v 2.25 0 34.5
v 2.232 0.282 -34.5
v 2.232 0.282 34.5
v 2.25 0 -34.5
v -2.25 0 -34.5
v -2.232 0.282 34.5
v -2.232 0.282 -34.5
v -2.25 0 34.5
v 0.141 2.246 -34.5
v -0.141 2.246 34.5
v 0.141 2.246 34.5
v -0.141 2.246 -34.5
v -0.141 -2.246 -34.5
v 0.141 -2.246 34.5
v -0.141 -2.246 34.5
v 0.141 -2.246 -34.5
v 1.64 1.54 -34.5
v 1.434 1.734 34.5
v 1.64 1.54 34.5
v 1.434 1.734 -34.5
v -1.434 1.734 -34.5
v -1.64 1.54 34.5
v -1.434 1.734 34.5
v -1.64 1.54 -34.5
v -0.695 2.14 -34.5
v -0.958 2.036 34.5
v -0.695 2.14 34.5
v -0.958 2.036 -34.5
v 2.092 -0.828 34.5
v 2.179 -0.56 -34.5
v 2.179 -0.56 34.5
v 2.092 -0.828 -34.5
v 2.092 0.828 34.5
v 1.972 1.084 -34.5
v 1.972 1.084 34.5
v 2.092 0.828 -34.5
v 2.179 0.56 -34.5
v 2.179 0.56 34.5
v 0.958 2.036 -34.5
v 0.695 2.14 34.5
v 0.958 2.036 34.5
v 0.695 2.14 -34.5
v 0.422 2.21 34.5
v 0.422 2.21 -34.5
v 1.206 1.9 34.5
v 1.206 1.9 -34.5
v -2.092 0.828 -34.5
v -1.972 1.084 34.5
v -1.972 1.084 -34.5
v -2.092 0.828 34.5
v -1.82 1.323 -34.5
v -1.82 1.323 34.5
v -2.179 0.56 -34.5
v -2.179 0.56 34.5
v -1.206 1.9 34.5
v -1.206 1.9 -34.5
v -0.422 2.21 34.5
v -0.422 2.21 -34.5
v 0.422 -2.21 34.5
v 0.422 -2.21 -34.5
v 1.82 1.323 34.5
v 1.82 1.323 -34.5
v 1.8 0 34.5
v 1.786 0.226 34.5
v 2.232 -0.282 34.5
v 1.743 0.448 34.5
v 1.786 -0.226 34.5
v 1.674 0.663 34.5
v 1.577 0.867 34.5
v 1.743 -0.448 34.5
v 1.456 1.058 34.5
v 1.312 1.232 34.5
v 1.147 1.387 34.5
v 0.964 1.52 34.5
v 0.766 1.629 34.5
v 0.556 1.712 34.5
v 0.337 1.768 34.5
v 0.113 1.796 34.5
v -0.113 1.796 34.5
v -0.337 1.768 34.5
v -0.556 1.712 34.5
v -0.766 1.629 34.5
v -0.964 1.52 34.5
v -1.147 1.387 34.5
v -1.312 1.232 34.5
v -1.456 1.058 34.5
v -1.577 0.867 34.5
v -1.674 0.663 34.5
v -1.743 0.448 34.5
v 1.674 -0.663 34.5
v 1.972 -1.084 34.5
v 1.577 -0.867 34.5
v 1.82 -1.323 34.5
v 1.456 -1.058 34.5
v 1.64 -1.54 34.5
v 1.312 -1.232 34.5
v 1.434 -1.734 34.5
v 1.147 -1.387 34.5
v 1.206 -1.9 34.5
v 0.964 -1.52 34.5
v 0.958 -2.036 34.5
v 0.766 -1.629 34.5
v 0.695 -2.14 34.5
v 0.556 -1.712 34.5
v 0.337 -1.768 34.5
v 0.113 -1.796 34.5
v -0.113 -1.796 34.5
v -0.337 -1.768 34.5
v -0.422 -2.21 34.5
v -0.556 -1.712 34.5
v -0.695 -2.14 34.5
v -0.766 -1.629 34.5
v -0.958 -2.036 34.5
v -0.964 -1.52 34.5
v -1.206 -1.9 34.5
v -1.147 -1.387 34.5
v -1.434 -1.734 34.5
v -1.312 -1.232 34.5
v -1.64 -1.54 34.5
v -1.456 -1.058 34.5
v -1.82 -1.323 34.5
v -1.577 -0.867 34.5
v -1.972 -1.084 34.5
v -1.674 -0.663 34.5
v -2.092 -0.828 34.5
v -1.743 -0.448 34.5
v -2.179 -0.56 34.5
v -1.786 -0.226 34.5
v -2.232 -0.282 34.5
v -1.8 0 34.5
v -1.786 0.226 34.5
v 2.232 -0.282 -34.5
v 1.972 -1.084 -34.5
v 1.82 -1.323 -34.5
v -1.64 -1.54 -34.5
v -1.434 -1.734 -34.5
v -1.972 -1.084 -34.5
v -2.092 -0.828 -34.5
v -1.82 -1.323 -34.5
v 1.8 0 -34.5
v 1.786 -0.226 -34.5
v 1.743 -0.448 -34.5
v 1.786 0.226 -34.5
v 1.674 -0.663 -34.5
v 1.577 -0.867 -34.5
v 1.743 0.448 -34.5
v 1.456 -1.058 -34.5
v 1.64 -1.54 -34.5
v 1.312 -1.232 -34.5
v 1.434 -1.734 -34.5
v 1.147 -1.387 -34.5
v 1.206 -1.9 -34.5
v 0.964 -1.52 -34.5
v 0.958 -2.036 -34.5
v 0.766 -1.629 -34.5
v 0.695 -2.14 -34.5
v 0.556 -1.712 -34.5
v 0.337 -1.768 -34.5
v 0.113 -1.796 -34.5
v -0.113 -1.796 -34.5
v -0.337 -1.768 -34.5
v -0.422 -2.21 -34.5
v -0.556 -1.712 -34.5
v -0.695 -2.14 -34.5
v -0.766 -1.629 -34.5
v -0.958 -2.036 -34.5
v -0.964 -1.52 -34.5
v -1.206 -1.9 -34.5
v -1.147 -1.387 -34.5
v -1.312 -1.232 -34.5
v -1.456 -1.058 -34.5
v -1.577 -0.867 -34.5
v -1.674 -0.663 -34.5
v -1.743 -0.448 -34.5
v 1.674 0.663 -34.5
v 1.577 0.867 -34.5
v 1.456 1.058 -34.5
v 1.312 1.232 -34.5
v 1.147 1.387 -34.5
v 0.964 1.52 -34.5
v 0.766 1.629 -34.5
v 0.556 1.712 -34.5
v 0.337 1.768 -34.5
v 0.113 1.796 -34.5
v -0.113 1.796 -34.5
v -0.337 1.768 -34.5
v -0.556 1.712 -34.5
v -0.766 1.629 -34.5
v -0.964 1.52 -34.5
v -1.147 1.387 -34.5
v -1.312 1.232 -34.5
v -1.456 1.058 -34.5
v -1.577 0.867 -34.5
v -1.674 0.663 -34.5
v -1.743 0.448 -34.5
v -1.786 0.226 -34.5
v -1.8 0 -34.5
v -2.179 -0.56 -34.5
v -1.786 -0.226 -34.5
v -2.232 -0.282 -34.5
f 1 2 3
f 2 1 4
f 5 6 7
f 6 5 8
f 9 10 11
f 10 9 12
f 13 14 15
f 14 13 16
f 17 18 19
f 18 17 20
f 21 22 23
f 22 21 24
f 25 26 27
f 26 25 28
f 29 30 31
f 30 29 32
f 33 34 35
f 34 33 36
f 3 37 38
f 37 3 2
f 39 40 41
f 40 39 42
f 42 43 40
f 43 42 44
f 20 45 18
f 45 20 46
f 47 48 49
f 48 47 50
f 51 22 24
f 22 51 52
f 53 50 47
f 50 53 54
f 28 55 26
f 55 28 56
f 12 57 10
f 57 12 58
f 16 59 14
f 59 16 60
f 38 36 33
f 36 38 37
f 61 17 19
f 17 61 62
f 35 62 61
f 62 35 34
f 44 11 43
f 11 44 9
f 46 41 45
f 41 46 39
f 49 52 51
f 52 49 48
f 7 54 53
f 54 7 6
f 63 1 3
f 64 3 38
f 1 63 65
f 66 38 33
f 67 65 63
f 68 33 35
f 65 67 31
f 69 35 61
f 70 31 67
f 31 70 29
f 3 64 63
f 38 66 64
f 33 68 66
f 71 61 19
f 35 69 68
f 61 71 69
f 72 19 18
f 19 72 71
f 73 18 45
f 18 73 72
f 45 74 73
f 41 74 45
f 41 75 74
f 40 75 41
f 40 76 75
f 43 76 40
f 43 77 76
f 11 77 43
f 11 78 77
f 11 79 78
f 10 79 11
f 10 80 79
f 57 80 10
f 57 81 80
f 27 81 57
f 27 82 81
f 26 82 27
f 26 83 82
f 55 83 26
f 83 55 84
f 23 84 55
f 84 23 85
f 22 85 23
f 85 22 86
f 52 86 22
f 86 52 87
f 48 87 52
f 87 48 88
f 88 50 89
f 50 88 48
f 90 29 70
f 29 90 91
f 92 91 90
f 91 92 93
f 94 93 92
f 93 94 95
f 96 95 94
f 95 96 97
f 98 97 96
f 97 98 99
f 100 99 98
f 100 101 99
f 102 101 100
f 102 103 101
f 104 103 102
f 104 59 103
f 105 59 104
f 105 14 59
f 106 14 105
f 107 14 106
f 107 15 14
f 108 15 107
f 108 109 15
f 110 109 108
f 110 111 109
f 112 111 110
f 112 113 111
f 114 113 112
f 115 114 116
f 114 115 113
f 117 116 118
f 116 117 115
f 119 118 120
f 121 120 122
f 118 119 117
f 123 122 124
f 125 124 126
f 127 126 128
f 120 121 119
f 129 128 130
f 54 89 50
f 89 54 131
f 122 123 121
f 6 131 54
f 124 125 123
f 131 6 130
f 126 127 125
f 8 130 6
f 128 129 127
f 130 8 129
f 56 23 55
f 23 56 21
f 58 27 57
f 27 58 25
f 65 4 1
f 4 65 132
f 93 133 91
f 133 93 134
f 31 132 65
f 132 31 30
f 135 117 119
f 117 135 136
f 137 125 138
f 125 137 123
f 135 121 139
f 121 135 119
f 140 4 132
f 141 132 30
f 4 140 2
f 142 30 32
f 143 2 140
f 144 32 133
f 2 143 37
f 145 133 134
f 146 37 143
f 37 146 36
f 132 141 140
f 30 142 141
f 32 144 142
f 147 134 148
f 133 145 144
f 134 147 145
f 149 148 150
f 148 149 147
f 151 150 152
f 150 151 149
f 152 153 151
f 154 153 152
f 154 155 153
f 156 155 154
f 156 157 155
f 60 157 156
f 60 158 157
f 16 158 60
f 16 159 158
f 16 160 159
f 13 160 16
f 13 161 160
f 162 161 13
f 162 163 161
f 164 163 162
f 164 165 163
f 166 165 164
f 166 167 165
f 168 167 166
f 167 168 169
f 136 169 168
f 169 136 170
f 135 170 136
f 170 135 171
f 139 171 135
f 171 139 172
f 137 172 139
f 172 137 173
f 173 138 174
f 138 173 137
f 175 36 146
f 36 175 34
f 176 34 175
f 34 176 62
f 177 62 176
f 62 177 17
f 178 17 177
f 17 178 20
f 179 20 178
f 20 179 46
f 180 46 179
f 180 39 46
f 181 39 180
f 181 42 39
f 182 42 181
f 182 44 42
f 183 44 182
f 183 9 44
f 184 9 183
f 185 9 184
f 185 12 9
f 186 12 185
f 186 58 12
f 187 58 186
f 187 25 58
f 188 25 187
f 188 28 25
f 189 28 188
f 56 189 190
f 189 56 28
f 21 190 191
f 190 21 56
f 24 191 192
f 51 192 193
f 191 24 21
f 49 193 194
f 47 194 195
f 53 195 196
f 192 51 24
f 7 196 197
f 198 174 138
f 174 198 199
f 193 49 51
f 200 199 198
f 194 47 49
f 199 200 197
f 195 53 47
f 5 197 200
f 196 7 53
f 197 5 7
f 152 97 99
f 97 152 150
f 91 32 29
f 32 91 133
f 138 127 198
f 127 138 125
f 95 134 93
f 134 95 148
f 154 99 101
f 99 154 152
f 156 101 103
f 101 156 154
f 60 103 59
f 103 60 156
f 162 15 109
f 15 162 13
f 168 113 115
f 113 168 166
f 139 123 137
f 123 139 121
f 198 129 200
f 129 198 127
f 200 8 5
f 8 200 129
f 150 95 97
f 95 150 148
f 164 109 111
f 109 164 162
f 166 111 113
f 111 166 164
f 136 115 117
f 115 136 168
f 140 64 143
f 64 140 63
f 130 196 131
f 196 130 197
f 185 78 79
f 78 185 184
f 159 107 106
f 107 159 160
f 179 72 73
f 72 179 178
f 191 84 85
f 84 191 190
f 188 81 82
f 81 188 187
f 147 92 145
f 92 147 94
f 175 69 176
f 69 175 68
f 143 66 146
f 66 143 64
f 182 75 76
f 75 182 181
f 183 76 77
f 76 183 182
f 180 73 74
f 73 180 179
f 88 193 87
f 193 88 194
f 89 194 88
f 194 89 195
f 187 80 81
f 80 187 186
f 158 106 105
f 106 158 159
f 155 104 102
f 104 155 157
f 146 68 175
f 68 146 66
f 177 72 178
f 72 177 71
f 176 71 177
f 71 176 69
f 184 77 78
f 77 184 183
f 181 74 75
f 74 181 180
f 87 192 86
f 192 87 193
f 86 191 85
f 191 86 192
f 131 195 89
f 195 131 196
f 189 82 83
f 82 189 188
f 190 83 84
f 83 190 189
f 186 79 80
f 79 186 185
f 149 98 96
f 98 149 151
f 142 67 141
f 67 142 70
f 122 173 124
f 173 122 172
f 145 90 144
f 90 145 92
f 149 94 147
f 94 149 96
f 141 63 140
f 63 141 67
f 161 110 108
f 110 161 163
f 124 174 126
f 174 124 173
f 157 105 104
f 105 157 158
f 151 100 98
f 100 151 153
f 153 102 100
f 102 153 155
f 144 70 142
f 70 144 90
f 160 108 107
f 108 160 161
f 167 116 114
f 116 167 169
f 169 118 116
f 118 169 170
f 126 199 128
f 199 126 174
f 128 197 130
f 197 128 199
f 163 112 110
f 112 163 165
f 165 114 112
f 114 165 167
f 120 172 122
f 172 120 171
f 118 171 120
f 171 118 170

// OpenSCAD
$fn = 50;


difference() {
	union() {
		translate(v = [0, 0, -34.5000000000]) {
			cylinder(h = 69, r = 2.2500000000);
		}
	}
	union() {
		translate(v = [0, 0, -100.0000000000]) {
			cylinder(h = 200, r = 1.8000000000);
		}
	}
}
